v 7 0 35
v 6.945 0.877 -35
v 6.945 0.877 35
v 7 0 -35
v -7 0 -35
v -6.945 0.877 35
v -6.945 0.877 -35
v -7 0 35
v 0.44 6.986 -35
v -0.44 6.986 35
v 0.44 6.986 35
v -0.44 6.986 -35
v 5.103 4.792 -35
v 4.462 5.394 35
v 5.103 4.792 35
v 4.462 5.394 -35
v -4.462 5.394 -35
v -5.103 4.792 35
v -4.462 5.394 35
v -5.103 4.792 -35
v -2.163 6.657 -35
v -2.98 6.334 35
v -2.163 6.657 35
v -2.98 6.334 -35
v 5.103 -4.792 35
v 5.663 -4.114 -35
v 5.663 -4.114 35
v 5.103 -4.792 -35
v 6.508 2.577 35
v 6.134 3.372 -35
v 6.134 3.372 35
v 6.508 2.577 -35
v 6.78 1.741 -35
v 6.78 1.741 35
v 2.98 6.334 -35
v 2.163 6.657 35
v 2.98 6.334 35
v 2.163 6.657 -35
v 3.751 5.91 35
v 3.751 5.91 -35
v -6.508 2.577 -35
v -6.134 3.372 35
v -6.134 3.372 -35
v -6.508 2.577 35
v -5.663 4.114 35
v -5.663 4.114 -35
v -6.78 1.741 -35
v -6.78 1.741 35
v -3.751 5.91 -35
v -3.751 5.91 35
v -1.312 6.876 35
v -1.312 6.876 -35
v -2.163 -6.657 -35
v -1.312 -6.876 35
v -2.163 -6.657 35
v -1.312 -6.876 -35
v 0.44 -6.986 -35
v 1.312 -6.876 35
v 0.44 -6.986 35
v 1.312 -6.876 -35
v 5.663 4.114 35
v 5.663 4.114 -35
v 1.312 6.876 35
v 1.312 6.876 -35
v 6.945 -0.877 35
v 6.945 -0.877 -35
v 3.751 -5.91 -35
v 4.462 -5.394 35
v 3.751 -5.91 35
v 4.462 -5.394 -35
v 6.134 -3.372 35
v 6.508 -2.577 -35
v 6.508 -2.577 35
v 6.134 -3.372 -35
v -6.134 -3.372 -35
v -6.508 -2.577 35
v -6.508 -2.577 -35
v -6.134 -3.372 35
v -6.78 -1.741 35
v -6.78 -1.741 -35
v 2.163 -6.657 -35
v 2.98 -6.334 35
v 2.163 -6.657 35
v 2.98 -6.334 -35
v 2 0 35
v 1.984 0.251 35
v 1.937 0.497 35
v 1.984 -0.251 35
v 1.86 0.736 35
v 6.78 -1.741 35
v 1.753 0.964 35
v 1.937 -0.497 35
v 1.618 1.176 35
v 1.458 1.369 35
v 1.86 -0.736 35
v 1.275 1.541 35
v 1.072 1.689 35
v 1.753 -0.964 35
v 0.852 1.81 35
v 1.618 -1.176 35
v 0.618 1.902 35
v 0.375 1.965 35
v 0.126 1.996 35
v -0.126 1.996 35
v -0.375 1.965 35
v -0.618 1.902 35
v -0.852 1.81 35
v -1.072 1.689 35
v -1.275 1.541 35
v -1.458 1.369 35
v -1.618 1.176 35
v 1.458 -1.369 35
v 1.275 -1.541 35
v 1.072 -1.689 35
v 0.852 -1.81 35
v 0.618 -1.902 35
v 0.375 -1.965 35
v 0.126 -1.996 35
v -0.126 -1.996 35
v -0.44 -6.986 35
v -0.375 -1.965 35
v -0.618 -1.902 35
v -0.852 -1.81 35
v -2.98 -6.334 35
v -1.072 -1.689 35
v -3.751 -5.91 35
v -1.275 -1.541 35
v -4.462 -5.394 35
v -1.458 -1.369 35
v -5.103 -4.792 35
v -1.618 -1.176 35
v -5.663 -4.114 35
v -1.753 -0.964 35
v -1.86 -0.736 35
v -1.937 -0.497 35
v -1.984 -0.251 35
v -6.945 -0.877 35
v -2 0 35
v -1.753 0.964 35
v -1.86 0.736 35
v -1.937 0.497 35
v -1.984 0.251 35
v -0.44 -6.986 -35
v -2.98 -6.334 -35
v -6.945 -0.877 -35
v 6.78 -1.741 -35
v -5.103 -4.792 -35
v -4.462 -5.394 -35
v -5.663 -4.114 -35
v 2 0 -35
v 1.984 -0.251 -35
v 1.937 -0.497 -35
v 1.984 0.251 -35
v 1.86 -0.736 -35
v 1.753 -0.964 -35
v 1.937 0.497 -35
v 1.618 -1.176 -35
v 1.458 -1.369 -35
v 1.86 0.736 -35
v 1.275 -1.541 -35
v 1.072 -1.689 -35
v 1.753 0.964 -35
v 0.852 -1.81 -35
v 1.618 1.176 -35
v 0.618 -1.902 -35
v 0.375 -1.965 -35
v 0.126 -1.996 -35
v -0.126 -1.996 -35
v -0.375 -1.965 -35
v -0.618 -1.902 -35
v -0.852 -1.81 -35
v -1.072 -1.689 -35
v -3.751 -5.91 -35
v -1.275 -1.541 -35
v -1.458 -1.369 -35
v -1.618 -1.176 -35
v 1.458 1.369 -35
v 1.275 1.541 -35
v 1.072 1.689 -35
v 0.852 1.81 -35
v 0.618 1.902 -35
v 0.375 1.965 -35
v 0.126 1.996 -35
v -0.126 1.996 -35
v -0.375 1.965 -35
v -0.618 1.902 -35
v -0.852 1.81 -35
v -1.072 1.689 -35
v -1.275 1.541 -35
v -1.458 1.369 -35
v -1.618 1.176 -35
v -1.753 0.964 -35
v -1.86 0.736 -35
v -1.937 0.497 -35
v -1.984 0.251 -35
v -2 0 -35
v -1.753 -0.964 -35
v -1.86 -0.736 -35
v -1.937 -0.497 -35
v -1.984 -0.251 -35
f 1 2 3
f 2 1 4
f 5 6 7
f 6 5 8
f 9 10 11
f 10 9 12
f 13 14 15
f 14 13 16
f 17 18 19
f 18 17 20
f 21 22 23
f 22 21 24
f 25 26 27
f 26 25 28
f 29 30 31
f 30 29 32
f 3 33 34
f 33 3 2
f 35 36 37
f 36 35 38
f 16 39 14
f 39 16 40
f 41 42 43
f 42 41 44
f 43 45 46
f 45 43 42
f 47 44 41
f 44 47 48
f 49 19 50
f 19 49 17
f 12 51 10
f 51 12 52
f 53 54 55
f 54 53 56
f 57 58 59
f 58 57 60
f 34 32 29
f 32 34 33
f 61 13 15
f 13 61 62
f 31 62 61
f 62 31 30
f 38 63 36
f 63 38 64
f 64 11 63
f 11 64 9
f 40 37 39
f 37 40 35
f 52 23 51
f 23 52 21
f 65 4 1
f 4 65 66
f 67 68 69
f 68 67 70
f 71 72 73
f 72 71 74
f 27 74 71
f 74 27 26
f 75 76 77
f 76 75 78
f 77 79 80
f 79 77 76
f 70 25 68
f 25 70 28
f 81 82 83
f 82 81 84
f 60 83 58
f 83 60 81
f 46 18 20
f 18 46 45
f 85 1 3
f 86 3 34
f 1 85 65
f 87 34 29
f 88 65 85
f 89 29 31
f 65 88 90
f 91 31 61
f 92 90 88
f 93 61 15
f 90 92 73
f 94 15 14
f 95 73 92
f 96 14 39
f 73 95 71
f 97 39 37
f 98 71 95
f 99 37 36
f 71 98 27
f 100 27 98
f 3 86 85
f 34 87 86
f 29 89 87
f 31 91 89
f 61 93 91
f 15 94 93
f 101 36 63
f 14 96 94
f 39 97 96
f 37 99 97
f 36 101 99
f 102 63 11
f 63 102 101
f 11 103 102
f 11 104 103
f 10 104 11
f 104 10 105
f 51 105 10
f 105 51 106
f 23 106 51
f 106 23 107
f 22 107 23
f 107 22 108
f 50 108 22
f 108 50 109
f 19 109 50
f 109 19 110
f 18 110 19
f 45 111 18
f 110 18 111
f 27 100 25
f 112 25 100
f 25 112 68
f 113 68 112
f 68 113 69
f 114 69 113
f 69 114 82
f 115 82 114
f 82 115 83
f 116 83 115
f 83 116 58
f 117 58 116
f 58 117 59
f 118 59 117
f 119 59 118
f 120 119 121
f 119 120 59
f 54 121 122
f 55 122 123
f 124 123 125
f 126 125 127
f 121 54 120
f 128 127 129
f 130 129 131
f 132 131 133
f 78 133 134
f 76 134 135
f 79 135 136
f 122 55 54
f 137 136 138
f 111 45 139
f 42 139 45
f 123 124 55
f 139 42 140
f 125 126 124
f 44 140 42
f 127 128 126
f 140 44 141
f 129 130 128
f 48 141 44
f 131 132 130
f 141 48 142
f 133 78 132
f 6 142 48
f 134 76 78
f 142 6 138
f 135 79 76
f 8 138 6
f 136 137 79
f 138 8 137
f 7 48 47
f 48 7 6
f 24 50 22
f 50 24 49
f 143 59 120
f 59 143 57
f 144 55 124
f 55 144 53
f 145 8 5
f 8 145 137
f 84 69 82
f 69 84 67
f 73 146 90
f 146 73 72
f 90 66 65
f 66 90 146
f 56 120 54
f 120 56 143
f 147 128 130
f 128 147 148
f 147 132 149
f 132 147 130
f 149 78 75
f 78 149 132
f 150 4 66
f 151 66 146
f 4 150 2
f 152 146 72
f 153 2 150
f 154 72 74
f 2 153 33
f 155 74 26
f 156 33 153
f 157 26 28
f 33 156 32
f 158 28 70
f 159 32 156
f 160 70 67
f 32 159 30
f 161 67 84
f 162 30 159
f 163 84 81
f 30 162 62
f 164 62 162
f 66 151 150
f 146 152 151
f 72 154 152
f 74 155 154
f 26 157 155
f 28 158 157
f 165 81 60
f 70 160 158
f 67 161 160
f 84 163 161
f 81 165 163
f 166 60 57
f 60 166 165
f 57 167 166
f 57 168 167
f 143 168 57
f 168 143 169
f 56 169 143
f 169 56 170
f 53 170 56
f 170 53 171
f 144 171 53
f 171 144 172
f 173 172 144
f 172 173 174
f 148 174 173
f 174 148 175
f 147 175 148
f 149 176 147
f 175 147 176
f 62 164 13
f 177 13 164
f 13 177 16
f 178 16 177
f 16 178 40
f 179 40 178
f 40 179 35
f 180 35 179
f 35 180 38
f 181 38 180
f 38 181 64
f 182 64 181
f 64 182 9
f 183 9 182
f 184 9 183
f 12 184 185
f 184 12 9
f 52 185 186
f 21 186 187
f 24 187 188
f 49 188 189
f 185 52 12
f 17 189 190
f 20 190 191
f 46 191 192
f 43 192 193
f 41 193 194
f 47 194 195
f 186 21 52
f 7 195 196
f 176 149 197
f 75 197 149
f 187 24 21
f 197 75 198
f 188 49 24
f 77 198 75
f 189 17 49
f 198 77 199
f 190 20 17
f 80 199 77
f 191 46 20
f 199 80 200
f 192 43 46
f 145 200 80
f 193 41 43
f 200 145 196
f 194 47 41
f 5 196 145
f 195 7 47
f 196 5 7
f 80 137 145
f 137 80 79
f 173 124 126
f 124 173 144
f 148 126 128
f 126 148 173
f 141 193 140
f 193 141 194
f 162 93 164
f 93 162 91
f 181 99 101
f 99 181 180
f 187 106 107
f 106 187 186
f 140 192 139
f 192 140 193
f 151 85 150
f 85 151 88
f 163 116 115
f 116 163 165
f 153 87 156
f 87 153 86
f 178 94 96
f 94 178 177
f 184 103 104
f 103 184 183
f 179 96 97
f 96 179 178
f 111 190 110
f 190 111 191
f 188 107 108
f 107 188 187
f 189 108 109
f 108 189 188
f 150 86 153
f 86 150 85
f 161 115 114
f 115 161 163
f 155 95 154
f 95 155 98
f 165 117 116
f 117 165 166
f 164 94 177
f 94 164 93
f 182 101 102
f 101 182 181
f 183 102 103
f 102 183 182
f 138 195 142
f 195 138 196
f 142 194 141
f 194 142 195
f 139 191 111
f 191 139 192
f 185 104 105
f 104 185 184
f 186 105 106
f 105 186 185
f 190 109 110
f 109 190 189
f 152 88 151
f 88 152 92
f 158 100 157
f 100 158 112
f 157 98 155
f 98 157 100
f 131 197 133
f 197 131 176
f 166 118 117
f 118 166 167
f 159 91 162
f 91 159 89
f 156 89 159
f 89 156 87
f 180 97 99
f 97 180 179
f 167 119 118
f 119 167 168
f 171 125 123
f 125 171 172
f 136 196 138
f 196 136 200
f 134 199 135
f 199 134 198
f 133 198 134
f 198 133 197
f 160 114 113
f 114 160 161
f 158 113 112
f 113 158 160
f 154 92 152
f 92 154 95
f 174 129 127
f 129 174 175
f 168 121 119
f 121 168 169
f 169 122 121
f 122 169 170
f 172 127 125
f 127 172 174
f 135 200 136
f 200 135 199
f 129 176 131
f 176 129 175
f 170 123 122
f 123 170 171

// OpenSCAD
$fn = 50;


difference() {
	union() {
		translate(v = [0, 0, -35.0000000000]) {
			cylinder(h = 70, r = 7.0000000000);
		}
	}
	union() {
		translate(v = [0, 0, -100.0000000000]) {
			cylinder(h = 200, r = 2.0000000000);
		}
	}
}
